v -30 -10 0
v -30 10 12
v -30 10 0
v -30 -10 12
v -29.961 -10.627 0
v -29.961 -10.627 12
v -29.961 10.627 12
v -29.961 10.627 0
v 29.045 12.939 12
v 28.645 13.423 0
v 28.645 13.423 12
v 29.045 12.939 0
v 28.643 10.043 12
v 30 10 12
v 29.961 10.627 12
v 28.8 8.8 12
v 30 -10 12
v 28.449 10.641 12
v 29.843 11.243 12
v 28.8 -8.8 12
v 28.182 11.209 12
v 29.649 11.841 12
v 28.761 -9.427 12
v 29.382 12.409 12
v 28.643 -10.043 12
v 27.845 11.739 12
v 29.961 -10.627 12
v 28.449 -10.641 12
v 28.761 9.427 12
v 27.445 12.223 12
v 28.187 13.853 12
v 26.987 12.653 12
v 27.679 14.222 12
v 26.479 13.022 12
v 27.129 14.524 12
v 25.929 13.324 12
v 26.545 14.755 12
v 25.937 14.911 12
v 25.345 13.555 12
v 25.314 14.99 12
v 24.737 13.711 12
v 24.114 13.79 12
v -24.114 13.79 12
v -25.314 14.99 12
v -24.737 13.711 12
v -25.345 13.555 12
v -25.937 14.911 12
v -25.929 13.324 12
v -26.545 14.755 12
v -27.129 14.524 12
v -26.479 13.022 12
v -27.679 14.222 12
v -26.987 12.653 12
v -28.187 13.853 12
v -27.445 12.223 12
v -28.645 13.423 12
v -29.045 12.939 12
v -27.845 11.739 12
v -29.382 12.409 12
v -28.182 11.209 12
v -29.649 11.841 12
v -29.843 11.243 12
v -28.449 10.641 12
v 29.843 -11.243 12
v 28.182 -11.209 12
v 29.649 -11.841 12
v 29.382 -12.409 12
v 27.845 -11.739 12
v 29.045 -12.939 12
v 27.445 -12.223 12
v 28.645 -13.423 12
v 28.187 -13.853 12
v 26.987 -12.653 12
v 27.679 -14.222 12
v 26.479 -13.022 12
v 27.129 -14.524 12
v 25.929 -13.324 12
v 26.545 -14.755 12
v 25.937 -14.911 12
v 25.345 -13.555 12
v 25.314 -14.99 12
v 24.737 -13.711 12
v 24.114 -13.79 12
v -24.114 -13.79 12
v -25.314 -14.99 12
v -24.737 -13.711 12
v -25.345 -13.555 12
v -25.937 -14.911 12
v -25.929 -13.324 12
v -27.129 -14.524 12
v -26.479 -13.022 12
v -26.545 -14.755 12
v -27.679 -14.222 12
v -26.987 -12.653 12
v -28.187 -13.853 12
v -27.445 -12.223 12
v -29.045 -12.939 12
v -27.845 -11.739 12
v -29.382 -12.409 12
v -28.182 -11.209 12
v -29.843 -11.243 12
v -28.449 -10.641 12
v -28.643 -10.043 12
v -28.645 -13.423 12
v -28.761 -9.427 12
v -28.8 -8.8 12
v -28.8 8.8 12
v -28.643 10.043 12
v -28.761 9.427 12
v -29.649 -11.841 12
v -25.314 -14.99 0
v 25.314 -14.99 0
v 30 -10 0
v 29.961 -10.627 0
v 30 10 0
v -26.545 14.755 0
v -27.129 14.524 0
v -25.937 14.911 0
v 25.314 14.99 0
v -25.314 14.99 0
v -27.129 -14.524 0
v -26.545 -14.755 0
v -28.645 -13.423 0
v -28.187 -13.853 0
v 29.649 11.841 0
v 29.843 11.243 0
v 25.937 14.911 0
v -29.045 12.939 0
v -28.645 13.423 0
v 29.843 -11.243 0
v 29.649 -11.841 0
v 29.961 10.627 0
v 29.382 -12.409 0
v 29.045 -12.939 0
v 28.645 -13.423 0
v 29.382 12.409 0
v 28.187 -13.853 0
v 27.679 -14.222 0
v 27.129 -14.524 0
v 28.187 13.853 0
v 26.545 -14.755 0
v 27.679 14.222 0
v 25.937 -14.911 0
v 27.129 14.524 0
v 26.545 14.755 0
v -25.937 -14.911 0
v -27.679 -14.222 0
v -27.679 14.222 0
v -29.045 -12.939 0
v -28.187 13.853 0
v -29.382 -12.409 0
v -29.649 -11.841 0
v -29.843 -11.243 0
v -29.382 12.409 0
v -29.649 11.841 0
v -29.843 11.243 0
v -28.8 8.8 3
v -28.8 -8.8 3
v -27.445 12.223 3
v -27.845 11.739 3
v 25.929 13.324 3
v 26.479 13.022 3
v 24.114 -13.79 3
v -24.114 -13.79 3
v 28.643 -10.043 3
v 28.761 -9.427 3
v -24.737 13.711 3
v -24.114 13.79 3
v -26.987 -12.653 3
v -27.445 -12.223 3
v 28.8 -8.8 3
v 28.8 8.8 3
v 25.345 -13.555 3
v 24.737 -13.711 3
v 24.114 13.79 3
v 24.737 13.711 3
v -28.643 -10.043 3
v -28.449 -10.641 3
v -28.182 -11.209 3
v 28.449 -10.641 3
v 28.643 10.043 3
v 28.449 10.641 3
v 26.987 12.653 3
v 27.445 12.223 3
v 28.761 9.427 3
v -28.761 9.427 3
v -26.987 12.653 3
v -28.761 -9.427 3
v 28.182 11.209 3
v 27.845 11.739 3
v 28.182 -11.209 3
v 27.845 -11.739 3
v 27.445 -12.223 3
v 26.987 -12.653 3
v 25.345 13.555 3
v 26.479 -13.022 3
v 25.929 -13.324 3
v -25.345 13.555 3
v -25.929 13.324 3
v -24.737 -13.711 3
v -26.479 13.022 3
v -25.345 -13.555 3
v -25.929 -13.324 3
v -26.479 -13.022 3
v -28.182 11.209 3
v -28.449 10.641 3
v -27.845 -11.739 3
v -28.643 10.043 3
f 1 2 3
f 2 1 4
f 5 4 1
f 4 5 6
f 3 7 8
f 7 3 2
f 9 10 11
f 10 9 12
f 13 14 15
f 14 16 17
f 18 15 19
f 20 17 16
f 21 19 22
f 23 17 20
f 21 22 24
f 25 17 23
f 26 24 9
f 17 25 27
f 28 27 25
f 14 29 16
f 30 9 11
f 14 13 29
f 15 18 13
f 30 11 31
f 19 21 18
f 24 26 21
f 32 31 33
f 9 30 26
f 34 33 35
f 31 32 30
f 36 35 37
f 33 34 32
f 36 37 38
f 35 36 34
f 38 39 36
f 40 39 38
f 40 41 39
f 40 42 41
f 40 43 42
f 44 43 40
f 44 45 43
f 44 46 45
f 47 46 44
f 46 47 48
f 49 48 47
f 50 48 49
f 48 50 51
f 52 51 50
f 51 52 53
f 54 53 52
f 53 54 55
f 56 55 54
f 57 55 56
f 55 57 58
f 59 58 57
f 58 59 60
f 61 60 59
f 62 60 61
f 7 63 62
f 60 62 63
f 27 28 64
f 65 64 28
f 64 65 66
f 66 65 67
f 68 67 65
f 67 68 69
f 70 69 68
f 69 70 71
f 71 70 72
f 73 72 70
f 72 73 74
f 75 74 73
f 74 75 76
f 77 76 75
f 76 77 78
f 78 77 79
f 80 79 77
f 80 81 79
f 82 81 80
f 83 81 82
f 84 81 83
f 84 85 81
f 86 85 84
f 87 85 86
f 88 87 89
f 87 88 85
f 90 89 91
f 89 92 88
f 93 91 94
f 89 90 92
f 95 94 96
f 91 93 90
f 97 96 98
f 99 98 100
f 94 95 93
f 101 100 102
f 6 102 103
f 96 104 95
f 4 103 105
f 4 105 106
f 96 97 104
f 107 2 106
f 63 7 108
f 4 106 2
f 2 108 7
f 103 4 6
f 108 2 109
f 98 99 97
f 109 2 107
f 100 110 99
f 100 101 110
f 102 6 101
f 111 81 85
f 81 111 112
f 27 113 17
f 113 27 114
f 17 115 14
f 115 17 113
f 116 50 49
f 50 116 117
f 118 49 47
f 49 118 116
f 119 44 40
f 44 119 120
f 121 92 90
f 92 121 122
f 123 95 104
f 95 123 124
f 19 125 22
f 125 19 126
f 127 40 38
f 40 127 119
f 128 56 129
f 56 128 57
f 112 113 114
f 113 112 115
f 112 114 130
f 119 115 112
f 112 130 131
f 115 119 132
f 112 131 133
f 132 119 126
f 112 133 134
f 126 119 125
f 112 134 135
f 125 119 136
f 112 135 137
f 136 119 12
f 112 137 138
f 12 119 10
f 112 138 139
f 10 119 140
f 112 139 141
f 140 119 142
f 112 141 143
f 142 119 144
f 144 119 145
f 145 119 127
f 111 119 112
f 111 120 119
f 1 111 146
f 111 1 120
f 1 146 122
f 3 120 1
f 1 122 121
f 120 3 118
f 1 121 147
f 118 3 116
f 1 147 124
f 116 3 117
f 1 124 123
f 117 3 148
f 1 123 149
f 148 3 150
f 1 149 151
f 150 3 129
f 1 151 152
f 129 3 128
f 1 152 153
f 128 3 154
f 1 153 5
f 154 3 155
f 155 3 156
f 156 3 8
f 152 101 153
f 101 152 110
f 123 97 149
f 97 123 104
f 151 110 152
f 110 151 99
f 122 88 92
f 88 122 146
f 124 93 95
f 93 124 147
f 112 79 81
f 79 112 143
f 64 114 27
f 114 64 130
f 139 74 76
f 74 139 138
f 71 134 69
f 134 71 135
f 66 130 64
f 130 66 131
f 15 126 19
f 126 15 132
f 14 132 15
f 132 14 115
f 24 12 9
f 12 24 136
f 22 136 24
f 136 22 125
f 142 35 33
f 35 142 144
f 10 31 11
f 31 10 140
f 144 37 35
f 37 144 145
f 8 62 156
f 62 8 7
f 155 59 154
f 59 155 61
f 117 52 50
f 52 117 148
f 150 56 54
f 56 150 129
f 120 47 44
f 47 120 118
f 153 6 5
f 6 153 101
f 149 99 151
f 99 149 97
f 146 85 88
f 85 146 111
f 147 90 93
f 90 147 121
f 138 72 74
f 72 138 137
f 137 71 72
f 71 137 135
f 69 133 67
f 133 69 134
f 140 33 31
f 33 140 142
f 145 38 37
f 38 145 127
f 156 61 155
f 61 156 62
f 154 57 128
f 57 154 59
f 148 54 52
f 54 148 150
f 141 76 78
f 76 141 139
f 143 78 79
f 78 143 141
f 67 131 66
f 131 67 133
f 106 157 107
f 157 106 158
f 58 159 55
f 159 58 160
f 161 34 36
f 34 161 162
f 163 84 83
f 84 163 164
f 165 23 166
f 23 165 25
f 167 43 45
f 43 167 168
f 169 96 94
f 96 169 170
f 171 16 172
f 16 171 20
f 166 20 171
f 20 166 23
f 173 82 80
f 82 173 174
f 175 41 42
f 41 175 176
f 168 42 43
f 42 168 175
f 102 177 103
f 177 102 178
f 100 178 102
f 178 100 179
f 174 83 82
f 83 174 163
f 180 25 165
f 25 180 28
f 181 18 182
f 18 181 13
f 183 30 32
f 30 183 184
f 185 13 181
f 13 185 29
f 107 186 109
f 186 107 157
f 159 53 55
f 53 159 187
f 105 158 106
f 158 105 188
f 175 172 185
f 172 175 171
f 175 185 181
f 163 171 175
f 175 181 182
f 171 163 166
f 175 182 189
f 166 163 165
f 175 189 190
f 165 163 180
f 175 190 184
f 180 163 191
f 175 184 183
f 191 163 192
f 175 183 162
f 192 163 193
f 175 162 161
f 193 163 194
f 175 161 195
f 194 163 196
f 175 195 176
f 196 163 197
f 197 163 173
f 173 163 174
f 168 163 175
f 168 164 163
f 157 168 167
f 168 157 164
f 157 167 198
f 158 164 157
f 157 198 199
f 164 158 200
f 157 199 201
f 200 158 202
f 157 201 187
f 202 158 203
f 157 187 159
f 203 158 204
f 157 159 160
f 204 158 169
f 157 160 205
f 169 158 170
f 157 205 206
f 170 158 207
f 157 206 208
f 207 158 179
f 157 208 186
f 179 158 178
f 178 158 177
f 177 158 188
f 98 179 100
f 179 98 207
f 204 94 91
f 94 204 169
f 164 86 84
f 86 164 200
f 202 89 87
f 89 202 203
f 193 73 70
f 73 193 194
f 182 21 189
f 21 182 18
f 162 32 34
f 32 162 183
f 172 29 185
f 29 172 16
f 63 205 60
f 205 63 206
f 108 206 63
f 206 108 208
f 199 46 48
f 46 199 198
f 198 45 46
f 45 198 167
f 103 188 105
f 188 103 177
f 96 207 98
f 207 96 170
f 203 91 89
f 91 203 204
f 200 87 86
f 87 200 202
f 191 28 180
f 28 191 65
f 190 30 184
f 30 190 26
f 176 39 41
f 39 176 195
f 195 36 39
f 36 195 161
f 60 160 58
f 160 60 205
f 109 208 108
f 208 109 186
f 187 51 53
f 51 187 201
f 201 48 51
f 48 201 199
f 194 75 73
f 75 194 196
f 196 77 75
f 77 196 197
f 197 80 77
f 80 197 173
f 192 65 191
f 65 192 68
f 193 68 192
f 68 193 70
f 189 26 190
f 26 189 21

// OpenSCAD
$fn = 50;


difference() {
	union() {
		hull() {
			translate(v = [-25.0000000000, 10.0000000000, 0]) {
				cylinder(h = 12, r = 5);
			}
			translate(v = [25.0000000000, 10.0000000000, 0]) {
				cylinder(h = 12, r = 5);
			}
			translate(v = [-25.0000000000, -10.0000000000, 0]) {
				cylinder(h = 12, r = 5);
			}
			translate(v = [25.0000000000, -10.0000000000, 0]) {
				cylinder(h = 12, r = 5);
			}
		}
	}
	union() {
		translate(v = [0, 0, 3]) {
			#hull() {
				translate(v = [-23.8000000000, 8.8000000000, 0]) {
					cylinder(h = 9, r = 5);
				}
				translate(v = [23.8000000000, 8.8000000000, 0]) {
					cylinder(h = 9, r = 5);
				}
				translate(v = [-23.8000000000, -8.8000000000, 0]) {
					cylinder(h = 9, r = 5);
				}
				translate(v = [23.8000000000, -8.8000000000, 0]) {
					cylinder(h = 9, r = 5);
				}
			}
		}
	}
}
